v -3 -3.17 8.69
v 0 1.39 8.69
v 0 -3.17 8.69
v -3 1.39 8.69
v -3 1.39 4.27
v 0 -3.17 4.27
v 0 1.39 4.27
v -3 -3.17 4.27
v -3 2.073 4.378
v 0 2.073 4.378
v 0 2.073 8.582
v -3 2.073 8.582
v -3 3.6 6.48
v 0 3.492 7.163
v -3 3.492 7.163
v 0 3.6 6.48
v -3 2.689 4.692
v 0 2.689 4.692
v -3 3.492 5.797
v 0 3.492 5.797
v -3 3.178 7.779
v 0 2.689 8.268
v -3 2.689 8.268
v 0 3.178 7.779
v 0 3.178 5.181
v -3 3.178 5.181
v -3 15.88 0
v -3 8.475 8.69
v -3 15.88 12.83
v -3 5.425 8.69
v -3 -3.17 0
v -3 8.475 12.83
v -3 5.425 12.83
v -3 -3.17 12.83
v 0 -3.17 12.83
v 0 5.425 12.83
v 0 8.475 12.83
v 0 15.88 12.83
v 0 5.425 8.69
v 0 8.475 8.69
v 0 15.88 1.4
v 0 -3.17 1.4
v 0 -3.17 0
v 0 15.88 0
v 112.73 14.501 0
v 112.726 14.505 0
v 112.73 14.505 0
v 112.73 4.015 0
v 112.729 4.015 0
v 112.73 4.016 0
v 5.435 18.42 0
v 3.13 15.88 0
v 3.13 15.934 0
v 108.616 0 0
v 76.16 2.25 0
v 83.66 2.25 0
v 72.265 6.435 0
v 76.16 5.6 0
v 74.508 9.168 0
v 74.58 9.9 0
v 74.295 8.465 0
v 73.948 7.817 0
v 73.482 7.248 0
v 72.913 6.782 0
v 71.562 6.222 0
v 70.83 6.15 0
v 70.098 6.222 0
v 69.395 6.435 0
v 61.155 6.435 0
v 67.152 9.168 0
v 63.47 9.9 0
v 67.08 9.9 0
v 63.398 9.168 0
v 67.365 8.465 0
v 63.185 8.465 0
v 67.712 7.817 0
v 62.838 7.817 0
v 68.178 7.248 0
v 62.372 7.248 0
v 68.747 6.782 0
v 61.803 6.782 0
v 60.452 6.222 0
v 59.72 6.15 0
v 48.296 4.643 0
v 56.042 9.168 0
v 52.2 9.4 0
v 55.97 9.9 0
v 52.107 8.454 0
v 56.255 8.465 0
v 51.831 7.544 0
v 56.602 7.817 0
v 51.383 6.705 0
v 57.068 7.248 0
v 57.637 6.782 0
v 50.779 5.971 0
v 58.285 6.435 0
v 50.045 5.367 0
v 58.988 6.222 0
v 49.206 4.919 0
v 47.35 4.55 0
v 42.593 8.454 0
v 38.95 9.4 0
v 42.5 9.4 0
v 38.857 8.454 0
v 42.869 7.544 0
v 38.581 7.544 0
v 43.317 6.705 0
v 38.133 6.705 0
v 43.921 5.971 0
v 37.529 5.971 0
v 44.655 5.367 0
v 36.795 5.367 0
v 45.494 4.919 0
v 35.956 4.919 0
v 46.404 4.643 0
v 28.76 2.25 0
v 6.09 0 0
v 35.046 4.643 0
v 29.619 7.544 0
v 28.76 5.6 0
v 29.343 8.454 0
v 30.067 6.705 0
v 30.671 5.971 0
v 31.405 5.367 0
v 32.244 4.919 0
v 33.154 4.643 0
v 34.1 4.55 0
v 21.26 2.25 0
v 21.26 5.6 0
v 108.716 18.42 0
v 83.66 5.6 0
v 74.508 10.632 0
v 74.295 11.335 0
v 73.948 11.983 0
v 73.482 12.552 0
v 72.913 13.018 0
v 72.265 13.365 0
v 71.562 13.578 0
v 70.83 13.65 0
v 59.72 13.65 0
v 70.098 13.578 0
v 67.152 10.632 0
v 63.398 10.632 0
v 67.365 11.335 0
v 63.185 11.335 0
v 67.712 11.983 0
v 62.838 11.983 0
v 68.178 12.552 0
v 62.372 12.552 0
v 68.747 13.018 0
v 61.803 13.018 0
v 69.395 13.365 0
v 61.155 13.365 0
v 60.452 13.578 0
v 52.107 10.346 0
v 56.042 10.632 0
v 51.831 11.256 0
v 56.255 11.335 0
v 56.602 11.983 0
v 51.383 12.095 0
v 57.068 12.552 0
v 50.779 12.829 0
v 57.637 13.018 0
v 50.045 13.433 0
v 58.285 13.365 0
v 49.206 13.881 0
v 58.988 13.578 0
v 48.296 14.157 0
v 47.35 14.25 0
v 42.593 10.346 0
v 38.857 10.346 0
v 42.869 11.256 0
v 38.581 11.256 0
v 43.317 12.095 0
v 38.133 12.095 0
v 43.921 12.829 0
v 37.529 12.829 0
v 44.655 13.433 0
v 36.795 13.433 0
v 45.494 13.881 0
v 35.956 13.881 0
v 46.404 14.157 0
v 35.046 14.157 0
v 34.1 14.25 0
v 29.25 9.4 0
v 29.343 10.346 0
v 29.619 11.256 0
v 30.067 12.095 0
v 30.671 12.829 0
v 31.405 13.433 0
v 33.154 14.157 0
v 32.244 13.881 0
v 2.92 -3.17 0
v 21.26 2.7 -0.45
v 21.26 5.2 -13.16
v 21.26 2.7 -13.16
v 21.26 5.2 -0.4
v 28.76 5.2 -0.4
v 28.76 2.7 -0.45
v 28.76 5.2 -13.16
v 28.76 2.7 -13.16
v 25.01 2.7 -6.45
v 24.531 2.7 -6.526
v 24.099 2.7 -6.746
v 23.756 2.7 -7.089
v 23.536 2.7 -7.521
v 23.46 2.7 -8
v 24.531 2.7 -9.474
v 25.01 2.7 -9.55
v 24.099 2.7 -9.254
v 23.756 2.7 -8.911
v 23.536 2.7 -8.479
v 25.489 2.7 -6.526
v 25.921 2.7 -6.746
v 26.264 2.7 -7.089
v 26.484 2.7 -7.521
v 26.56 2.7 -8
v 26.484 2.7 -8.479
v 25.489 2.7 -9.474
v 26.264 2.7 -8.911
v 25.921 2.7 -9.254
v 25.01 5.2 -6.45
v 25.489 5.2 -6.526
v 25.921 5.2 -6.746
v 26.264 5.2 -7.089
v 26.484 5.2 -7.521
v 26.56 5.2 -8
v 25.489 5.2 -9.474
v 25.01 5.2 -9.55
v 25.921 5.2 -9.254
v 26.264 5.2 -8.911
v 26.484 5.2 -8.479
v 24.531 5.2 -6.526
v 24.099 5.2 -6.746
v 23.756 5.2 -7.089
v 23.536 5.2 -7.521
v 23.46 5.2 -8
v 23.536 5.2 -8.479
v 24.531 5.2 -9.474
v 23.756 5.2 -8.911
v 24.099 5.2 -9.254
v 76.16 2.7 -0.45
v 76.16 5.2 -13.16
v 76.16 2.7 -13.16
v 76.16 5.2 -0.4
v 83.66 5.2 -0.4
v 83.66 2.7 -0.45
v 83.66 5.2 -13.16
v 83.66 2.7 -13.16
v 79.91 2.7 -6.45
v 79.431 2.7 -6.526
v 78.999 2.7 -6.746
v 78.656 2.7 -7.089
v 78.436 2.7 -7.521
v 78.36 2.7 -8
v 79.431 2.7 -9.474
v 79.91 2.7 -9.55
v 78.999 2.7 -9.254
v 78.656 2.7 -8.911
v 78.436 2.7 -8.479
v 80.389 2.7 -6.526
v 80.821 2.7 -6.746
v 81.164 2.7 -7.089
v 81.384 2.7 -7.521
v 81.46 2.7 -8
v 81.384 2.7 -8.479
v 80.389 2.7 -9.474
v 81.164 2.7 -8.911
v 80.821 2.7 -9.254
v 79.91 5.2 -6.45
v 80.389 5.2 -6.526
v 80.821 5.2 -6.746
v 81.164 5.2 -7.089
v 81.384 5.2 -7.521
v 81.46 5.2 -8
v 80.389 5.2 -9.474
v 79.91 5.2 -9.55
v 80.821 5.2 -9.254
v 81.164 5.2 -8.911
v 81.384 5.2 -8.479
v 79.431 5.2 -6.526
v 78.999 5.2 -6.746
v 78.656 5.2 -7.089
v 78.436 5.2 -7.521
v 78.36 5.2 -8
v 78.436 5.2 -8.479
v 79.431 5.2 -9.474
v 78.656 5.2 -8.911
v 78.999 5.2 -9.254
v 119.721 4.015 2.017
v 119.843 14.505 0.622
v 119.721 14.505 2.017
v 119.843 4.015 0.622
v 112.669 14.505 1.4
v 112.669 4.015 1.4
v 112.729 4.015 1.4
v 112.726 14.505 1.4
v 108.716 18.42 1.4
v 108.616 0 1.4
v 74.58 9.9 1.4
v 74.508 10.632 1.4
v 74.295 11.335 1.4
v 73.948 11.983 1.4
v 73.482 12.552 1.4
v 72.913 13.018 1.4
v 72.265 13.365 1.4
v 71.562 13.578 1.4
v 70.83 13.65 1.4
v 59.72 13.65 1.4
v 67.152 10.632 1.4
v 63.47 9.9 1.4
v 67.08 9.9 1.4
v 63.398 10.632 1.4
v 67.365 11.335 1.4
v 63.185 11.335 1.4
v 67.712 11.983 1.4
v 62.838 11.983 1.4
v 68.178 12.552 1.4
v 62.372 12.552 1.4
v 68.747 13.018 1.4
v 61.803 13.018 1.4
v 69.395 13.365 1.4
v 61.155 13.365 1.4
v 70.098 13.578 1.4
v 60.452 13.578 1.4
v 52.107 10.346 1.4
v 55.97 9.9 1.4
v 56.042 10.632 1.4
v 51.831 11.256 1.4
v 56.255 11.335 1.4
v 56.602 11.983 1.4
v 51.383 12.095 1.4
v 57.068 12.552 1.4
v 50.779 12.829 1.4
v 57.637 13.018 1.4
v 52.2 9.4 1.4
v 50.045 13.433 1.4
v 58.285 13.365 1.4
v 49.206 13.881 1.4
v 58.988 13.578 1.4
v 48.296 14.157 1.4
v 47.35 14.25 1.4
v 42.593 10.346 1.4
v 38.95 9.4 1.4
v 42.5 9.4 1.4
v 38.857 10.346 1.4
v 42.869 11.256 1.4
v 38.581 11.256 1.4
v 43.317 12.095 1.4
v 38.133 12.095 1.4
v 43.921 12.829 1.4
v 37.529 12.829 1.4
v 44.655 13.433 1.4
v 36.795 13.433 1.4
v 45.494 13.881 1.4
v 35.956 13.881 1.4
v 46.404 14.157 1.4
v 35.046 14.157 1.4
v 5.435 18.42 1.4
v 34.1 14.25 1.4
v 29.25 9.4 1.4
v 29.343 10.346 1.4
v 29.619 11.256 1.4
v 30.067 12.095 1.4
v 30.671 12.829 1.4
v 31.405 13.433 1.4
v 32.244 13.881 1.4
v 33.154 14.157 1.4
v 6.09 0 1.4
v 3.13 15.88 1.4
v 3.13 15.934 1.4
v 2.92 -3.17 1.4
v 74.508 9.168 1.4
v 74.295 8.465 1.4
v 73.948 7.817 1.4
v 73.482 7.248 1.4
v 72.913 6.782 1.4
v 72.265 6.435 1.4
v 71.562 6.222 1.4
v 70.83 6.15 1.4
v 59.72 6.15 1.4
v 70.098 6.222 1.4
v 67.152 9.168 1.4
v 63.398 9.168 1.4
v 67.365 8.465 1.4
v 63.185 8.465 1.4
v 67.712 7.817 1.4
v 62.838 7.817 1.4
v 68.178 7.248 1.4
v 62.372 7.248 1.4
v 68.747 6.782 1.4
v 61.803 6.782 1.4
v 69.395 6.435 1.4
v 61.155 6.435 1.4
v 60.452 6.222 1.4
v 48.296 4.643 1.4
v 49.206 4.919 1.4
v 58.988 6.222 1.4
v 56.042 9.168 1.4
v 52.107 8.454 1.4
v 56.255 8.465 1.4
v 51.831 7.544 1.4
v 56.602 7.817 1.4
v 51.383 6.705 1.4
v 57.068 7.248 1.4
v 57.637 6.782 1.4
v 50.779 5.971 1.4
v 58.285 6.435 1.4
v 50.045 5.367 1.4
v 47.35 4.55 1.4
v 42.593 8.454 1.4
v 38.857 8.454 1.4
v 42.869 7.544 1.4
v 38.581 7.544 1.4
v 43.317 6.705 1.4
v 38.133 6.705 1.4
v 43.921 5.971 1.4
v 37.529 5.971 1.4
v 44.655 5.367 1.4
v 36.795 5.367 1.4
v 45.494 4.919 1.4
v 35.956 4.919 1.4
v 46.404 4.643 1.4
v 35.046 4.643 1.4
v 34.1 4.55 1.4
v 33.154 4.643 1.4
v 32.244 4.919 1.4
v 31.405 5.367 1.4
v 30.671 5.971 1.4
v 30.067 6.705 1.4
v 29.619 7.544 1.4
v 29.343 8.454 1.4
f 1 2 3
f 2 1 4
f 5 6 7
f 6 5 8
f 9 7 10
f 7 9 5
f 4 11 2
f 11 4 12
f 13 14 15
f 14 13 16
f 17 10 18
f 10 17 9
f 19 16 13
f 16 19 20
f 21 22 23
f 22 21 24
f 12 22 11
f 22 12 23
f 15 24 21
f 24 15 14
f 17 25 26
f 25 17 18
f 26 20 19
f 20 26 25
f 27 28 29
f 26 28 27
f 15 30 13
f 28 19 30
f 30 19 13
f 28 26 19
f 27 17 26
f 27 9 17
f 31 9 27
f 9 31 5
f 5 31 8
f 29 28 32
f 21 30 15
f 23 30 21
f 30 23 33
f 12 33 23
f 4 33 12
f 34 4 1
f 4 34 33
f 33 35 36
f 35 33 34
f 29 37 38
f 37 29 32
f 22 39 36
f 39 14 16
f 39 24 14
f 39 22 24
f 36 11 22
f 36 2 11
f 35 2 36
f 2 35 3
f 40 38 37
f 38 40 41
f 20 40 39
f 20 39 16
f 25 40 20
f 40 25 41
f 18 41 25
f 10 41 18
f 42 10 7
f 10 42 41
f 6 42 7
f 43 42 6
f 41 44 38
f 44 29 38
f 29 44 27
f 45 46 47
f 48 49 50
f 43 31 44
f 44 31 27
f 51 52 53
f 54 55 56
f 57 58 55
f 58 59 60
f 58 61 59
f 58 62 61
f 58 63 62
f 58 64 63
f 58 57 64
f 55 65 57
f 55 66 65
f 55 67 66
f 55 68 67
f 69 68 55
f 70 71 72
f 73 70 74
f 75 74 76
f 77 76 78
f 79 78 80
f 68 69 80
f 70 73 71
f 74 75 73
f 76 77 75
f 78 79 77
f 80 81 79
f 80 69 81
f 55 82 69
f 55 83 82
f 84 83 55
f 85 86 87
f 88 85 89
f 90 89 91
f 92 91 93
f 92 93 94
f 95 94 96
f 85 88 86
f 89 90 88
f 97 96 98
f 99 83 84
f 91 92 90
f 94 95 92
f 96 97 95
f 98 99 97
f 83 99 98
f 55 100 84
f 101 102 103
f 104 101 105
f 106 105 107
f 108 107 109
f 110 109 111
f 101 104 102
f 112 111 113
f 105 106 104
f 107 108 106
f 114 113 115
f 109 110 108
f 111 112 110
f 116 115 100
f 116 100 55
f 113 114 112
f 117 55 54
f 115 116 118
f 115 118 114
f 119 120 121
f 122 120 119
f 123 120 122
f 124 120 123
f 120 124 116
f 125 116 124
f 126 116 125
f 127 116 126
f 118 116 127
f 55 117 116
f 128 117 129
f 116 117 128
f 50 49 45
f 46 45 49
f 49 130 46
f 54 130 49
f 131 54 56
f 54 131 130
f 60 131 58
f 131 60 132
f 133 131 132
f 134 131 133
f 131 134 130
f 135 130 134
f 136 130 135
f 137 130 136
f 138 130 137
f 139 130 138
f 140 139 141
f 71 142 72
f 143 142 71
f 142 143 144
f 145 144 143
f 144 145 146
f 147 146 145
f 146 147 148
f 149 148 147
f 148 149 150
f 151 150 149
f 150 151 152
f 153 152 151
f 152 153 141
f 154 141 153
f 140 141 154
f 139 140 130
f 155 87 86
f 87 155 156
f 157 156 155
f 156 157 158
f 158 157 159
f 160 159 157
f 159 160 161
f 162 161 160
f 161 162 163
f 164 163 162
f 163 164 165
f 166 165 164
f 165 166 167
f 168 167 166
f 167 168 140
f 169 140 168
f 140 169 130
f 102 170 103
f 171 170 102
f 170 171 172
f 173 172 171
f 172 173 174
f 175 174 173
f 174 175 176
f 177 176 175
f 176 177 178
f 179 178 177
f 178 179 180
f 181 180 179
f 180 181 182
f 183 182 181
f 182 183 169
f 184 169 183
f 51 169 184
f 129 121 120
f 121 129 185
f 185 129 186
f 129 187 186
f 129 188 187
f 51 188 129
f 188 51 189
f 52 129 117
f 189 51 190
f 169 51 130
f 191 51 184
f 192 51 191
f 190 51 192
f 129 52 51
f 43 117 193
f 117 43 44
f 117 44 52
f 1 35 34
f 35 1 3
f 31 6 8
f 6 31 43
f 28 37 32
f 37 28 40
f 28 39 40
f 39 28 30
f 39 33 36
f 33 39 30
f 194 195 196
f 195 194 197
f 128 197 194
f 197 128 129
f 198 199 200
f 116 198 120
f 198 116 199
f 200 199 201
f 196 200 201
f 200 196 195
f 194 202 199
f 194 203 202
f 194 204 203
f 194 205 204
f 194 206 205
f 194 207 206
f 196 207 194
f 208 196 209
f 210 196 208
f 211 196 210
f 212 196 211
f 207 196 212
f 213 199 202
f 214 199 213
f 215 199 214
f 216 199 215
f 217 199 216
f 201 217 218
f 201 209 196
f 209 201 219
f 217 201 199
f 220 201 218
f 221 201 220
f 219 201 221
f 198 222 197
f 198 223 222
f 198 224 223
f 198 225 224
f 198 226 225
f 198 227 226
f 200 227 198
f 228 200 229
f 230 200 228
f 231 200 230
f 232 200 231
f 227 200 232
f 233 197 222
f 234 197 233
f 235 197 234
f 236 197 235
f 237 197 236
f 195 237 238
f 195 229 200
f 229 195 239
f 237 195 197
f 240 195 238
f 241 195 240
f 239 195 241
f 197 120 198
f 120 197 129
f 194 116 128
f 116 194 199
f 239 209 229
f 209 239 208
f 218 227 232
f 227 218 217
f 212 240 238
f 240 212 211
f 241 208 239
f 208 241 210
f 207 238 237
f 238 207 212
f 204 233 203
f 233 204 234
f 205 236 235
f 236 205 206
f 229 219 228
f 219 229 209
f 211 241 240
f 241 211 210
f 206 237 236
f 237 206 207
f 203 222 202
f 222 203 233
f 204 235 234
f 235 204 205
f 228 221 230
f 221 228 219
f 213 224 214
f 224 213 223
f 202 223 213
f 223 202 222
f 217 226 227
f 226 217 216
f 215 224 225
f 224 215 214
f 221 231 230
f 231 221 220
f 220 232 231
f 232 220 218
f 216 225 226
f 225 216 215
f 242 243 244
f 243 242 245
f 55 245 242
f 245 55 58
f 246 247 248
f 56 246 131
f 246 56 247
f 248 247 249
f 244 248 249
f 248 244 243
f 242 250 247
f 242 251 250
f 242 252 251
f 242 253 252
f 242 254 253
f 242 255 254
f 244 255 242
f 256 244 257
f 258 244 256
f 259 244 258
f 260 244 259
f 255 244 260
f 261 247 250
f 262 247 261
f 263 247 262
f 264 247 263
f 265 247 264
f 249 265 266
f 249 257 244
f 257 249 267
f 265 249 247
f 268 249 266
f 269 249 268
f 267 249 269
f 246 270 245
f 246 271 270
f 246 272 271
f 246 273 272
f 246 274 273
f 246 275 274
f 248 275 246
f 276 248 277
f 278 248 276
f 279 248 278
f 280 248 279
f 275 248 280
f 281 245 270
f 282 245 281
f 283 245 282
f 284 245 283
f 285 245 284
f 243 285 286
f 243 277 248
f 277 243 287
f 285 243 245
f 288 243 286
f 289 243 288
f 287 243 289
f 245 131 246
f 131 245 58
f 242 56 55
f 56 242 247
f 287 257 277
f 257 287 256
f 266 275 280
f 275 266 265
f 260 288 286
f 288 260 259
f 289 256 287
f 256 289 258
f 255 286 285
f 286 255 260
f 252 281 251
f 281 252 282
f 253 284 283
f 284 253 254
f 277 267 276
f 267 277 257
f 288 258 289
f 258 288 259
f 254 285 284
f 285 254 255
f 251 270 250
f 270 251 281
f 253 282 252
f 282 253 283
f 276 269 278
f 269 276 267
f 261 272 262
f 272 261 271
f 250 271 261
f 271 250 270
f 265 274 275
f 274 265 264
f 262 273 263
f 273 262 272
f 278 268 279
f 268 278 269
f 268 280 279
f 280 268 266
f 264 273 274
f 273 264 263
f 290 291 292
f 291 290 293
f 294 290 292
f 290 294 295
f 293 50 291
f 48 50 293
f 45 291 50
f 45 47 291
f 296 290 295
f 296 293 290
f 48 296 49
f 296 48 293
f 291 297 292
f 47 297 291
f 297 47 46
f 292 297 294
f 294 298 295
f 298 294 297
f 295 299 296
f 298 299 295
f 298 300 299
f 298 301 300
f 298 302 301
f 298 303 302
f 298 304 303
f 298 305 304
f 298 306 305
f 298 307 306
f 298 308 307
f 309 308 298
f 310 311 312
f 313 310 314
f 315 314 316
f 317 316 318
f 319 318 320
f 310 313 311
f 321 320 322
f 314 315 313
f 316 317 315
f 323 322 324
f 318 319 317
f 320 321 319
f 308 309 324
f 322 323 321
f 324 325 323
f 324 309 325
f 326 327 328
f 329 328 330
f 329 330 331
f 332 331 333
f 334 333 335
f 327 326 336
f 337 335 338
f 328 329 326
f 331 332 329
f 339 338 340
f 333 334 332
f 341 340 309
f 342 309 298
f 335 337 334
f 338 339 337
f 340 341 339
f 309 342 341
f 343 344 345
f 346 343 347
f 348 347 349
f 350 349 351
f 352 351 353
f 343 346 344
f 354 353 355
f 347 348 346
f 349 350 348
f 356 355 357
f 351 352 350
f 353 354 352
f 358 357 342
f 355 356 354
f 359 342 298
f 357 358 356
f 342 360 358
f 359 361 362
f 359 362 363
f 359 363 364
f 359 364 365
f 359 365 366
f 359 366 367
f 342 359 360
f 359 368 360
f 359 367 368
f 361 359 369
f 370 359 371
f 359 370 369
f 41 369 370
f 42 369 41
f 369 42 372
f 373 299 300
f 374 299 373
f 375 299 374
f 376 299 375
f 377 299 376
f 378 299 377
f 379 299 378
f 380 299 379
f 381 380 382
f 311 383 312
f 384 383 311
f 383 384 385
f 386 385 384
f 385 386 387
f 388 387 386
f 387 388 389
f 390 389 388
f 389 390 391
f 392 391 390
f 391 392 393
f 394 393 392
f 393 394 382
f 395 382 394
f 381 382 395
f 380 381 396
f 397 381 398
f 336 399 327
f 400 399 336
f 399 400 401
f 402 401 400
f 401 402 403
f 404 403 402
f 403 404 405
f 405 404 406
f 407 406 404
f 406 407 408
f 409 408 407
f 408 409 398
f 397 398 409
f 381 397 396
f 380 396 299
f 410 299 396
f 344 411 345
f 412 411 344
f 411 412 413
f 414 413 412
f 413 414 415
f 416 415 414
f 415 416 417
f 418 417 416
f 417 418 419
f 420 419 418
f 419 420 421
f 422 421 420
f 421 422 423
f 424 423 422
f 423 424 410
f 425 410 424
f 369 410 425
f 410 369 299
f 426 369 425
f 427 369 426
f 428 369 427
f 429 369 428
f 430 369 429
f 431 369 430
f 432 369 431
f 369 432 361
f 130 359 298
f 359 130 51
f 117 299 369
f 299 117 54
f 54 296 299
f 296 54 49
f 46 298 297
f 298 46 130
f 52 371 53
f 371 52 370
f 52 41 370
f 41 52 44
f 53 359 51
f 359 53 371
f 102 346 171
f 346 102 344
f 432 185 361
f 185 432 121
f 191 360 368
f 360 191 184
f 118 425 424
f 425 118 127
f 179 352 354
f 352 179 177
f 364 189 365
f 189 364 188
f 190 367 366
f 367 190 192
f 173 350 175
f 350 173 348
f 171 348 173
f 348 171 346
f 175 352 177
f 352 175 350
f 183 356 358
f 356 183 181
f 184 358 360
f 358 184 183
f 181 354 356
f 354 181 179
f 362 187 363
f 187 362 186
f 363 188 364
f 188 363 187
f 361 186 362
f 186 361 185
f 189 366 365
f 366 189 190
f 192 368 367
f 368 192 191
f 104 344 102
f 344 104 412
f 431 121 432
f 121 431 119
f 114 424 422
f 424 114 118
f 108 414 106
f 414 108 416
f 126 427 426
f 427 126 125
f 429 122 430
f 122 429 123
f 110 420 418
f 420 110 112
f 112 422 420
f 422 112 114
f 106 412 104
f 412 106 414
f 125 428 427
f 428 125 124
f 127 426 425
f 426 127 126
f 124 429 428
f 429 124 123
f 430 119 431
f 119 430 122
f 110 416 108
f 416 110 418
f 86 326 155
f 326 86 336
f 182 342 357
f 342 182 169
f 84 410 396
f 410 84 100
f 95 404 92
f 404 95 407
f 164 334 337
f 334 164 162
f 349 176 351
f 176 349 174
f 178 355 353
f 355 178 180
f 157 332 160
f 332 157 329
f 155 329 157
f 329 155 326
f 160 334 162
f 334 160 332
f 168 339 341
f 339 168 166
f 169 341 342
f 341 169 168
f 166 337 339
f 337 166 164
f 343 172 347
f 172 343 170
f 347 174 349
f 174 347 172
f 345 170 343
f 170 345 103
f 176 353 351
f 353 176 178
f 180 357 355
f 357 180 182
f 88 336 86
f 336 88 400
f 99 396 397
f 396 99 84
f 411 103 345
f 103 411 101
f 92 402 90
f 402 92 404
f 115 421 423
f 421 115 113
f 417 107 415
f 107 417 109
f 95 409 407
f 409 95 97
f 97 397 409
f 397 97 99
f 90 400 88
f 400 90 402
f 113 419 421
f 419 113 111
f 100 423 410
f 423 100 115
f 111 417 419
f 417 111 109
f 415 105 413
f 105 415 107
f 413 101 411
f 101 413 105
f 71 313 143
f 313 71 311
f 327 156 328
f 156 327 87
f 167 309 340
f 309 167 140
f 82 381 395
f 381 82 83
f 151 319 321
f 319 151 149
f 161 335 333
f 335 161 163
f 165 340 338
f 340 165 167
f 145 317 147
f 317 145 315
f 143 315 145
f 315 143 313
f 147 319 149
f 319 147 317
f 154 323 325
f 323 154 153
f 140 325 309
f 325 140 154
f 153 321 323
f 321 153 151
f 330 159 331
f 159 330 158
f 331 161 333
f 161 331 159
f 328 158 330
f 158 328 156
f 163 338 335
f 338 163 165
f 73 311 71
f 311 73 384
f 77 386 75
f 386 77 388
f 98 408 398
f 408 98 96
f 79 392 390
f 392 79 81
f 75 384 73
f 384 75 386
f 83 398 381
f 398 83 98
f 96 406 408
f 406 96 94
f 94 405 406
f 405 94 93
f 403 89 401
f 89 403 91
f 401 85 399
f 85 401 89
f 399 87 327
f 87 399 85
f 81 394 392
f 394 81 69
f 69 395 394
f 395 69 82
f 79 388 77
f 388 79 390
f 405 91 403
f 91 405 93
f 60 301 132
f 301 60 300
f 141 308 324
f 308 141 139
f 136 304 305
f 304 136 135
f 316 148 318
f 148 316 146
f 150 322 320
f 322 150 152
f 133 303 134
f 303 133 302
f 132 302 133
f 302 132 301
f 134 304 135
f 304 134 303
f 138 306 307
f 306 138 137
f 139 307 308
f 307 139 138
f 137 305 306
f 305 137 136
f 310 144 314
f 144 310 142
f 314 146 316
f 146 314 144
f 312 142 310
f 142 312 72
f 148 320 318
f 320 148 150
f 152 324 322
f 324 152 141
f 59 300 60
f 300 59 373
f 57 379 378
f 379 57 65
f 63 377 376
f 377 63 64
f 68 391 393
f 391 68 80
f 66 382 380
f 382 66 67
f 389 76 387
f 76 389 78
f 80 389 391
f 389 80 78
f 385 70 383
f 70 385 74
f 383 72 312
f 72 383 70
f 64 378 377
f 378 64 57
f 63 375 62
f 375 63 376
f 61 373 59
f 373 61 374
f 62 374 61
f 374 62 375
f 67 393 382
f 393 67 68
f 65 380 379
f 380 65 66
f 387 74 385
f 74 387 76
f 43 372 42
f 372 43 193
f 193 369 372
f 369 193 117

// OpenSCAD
resolution=32; // $fn
low_profile=0; // [0:false, 1:true]
bracket_thickness = 1.4; // base bracket depth

//Some 3d printers may have trouble with this, disable it if yours does.
angled_bottom_tab = 1; // [0:false, 1:true]
decorative_hole=0; // [0:false, 1:true]
// This puts the tabs at the top rather than the bottom, and hole y-offsets are adjusted accordingly
isa_slot=0; // [0:false, 1:true]
// This is used to calculate the y-offsets of the holes if the screw mount tabs are on the bottom
pcb_thickness=1.6;

top_tab_thickness = 3;

/* [Screw mount tabs] */

first_screw_tab_enabled = 1; // [0:false, 1:true]
second_screw_tab_enabled = 1; // [0:false, 1:true]
screw_mounts_on_bottom_of_pcb = 0; // [0:false, 1:true]
screw_mount_width = 7.5;
screw_mount_depth = 2.5;
screw_mount_hole_r = 1.55; // m3 bolt
screw_mount_thread_distance_base = 8;
screw_mount_inset_r = 2.9; // m3 bolt head
screw_mount_inset_depth = 0;
screw_mount_caulking = 0.5;

first_mount_x = 25.01;
mount_hole_distance = 54.9;
// If on top of the PCB, it is recommended to have this be at least the thickness of the PCB
screw_mount_y = 2.7;
second_mount_x = first_mount_x + mount_hole_distance;

/* [Round Holes] */
hole_1_enabled = 1; // [0:false, 1:true]
// X is offset from the first screw hole (i.e. the screw hole closest to the case mount cutout)
hole_1_x = 9.09;
// Y is offset from top of pcb
hole_1_y = 6.7;
hole_1_d = 9.7;

hole_2_enabled = 1; // [0:false, 1:true]
hole_2_x = 22.34;
hole_2_y = 6.7;
hole_2_d = 9.7;

hole_3_enabled = 1; // [0:false, 1:true]
hole_3_x = 34.71;
hole_3_y = 7.2;
hole_3_d = 7.5;

hole_4_enabled = 1; // [0:false, 1:true]
hole_4_x = 45.82;
hole_4_y = 7.2;
hole_4_d = 7.5;

hole_5_enabled = 0; // [0:false, 1:true]
hole_5_x = 37.69;
hole_5_y = 6.7;
hole_5_d = 9.5;

hole_6_enabled = 0; // [0:false, 1:true]
hole_6_x = 51.04;
hole_6_y = 6.7;
hole_6_d = 9.5;

/* [Rectangular Holes] */
// hole is at center of x,y positions
rectangular_hole_1_enabled = 0; // [0:false, 1:true]
// X is offset from the first screw hole (i.e. the screw hole closest to the case mount cutout)
rectangular_hole_1_x = 11.01;
// Y is offset from top of pcb
rectangular_hole_1_y = 6.5;
rectangular_hole_1_w = 10.5;
rectangular_hole_1_h = 10.5;

rectangular_hole_2_enabled = 0; // [0:false, 1:true]
rectangular_hole_2_x = 24.34;
rectangular_hole_2_y = 6.5;
rectangular_hole_2_w = 10.5;
rectangular_hole_2_h = 10.5;

rectangular_hole_3_enabled = 0; // [0:false, 1:true]
rectangular_hole_3_x = 63.41;
rectangular_hole_3_y = 7;
rectangular_hole_3_w = 10.5;
rectangular_hole_3_h = 10.5;

rectangular_hole_4_enabled = 0; // [0:false, 1:true]
rectangular_hole_4_x = 76.12;
rectangular_hole_4_y = 7;
rectangular_hole_4_w = 10.5;
rectangular_hole_4_h = 10.5;

rectangular_hole_5_enabled = 0; // [0:false, 1:true]
rectangular_hole_5_x = 37.69;
rectangular_hole_5_y = 6.5;
rectangular_hole_5_w = 10.5;
rectangular_hole_5_h = 10.5;

rectangular_hole_6_enabled = 0; // [0:false, 1:true]
rectangular_hole_6_x = 51.04;
rectangular_hole_6_y = 6.5;
rectangular_hole_6_w = 10.5;
rectangular_hole_6_h = 10.5;
// values taken from https://content.norcomp.net/rohspdfs/Connectors/PanelCutOuts/Panel_Cutout_D-Sub-Single.pdf

/* [D-Sub holes (Serial/VGA/Gameport)] */
// hole is at center of x,y positions
dsub_hole_1_type = 0; // [0:None, 15.46:DB-9(VGA/Serial), 23.79:DB-15(Gameport), 37.51:DB-25(Parallel)]
// X is offset from the first screw hole (i.e. the screw hole closest to the case mount cutout)
dsub_hole_1_x = 37.6;
// Y is offset from top of pcb
dsub_hole_1_y = 7.1;
dsub_hole_1_invert = 0; // [0:false, 1:true]

dsub_hole_2_type = 0; // [0:None, 15.46:DB-9(VGA/Serial), 23.79:DB-15(Gameport), 37.51:DB-25(Parallel)]
dsub_hole_2_x = 37.6;
dsub_hole_2_y = 7.1;
dsub_hole_2_invert = 0; // [0:false, 1:true]

dsub_hole_3_type = 0; // [0:None, 15.46:DB-9(VGA/Serial), 23.79:DB-15(Gameport), 37.51:DB-25(Parallel)]
dsub_hole_3_x = 37.6;
dsub_hole_3_y = 7.1;
dsub_hole_3_invert = 0; // [0:false, 1:true]

/* [DVI Hole]] */

dvi_hole_enabled = 0; // [0:false, 1:true]
dvi_hole_x = 37.6;
dvi_hole_y = 6;
dvi_hole_invert = 0; // [0:false, 1:true]


module __Customizer_Limit__ () {}  // This actually works
shown_by_customizer = 0; // [0:false, 1:true]

$fn = resolution;
bracket_width_length = low_profile? 71.46 : 112.78;
bracket_length = low_profile ? 79.20 : 120.02;
bracket_width = 18.42 + 0;
bottom_tab_width = 10.19 + 0;
bracket_bottom_tab_angle_length = (bracket_width - bottom_tab_width) / 2;

bracket_reinforce_width = bracket_width * .2;
bracket_reinforce_length = bracket_length * .78;

bracket_hole_dia = decorative_hole ? 4.75 : 0;
bracket_hole_distance = low_profile ? 66.19 : 107.01;

screw_mount_thread_distance = screw_mount_thread_distance_base + bracket_thickness;
screw_mount_length = screw_mount_thread_distance * 1.4 + bracket_thickness;

bracket_reinforce_depth = 0;
bracket_reinforce_offset_x = -6;
bracket_reinforce_offset_y = -5;

// top notch
notch_width = 2.54;
notch_length = 3.94-.86; // 3.94 - specified thickness of .86mm (vs actual thickness)

top_tab_width = 19.05; // had to fudge this
top_tab_length = 11.43;
top_tab_x = 0;
top_tab_y = 3.17; // 21.59 - 18.42
top_tab_screw_groove_dia = 4.42;
top_tab_screw_groove_fudge = -0.4; // kinda came out looking wrong so I'm faking it a bit here
top_tab_screw_groove_center = 3.18 + top_tab_screw_groove_fudge;
top_tab_screw_groove_distance = 6.35;
top_tab_screw_groove_translate_z = top_tab_length - top_tab_screw_groove_dia / 2 - top_tab_screw_groove_distance;

top_tab_useless_notch_length = 3.05;
top_tab_useless_notch_width = top_tab_screw_groove_distance - top_tab_screw_groove_dia / 2;
top_tab_useless_notch_z = top_tab_length - top_tab_useless_notch_width;
top_tab_useless_notch_y = top_tab_useless_notch_width / 2 + 8.05 - top_tab_useless_notch_length / 2;


module prism(l, w, h){
     polyhedron(
         points=[[0,0,0], [l,0,0], [l,w,0], [0,w,0], [0,w,h], [l,w,h]],
         faces=[[0,1,2,3],[5,4,3,2],[0,4,5,1],[0,3,4],[5,2,1]]
         );
}
// screw mounts
module screwmount(x) {
  
  translate([0, isa_slot? -screw_mount_y - screw_mount_depth : -bracket_width + screw_mount_y, 0]) // easier to be explicit here than factor it in the below statement
  translate([x - screw_mount_width / 2, bracket_width, -screw_mount_length + bracket_thickness])
    // cut out the threads
    difference() {
      union() {
        cube([screw_mount_width, screw_mount_depth, screw_mount_length]);
        //top caulking
        if ((isa_slot && bracket_width-screw_mount_y +screw_mount_caulking < bracket_width) || (!isa_slot &&  screw_mount_y + screw_mount_depth+ screw_mount_caulking < bracket_width)){
        difference(){
        translate([screw_mount_width, screw_mount_depth-.05, screw_mount_length-bracket_thickness-screw_mount_caulking +.05])
          rotate([90,0,180])
          prism(screw_mount_width,screw_mount_caulking+.05,screw_mount_caulking+.05);
        }
        }
        //bottom caulking
        if ((isa_slot && bracket_width-screw_mount_y -screw_mount_depth -screw_mount_caulking > 0) || (!isa_slot && screw_mount_y - screw_mount_caulking > 0)){
        translate([0, 0, screw_mount_length-bracket_thickness-screw_mount_caulking +.05])
          rotate([90,0,0])
          prism(screw_mount_width,screw_mount_caulking+.05,screw_mount_caulking+.05);
        }        
      }
       translate([screw_mount_width / 2, -2, screw_mount_length - screw_mount_thread_distance])
         rotate([0, 90, 90]) cylinder(r=screw_mount_hole_r, h=10, $fn=20);
      //inset
      translate([screw_mount_width / 2, ((isa_slot && screw_mounts_on_bottom_of_pcb) || (!isa_slot && !screw_mounts_on_bottom_of_pcb))?(screw_mount_depth - screw_mount_inset_depth + 0.01):(-0.01),
        screw_mount_length - screw_mount_thread_distance])
          rotate([0, 90, 90])
          cylinder(r=screw_mount_inset_r, h=screw_mount_inset_depth, $fn=20);
    }
}

module translate_hole(hole_x,hole_y){
  y_offset_b = screw_mounts_on_bottom_of_pcb ? pcb_thickness + screw_mount_depth : 0;
  y_offset = !isa_slot ? 
    hole_y + screw_mount_y + y_offset_b
    : bracket_width - (hole_y + screw_mount_y + y_offset_b);
  translate([first_mount_x+ hole_x, y_offset, -bracket_thickness])
    children();
}
module round_hole(hole_x,hole_y,hole_d){
  translate_hole(hole_x,hole_y)
    cylinder(10,hole_d/2,hole_d/2);
}
module rectangular_hole(hole_x,hole_y,hole_w,hole_h){
  translate_hole(hole_x,hole_y)
    cube([10, hole_w, hole_h], center=true);
}

module dsub_hole(hole_x,hole_y,c_sz, invert = false){
  translate_hole(hole_x,hole_y)
    dsub_cutout(c_sz, invert);
}
module dsub_cutout(c_sz, invert=false){
  $fn=64;
  rotate([0,0,90]){
    top_x_coord = !invert ? c_sz/2 : (c_sz-2)/2;
    bottom_x_coord = !invert ? (c_sz-2)/2 : c_sz/2;
    hole_coord = (c_sz+9.53)/2;
    y_distance = 5.66;
    y_coord = y_distance/2;
    translate([0,hole_coord,0])
        cylinder(r=1.55,h=10);
    translate([0,-hole_coord,0])
        cylinder(r=1.55,h=10);
    hull(){
      translate([y_coord,-top_x_coord,0]){
      cylinder(r=2.51,h=10);
      }
      translate([y_coord,top_x_coord,0]){
      cylinder(r=2.51,h=10);
      }
      translate([-y_coord,-bottom_x_coord,0]){
      cylinder(r=2.51,h=10);
      }
      translate([-y_coord,bottom_x_coord,0]){
      cylinder(r=2.51,h=10);
      }
    }
  }
}
module dvi_hole(hole_x,hole_y, invert = false){
  translate_hole(hole_x,hole_y)
    dvi_cutout(invert);
}
module dvi_cutout(invert=false){
  $fn=64;
  rotate([0,0,90]){
    a_sz = 26.1;
    top_r_sz = 1.2;
    bottom_r_sz = 3;
    c_sz = a_sz - (top_r_sz *2);
    e_sz = c_sz - ((bottom_r_sz - top_r_sz) * 2);
    hole_coord = 32.5 /2;
    y_distance = 9.6 - (top_r_sz+ bottom_r_sz);

    top_x_coord = !invert ? c_sz/2 : e_sz/2;
    bottom_x_coord = !invert ? e_sz/2 : c_sz/2;
    top_r = !invert ? top_r_sz : bottom_r_sz;
    bottom_r = !invert ? bottom_r_sz: top_r_sz ;
    
    y_coord = y_distance/2;

    translate([0,hole_coord,0])
        cylinder(r=1.6,h=10);
    translate([0,-hole_coord,0])
        cylinder(r=1.6,h=10);
    hull(){
      translate([y_coord,-top_x_coord,0]){
      cylinder(r=top_r,h=10);
      }
      translate([y_coord,top_x_coord,0]){
      cylinder(r=top_r,h=10);
      }
      translate([-y_coord,-bottom_x_coord,0]){
      cylinder(r=bottom_r,h=10);
      }
      translate([-y_coord,bottom_x_coord,0]){
      cylinder(r=bottom_r,h=10);
      }
    }
  }
}

rotate([0,0,0])
union() { 
    
translate([-top_tab_thickness + top_tab_x, -top_tab_y, 0]) difference() {
  cube([top_tab_thickness, top_tab_width, top_tab_length + bracket_thickness]);
  translate([-.5, -1, top_tab_screw_groove_translate_z + bracket_thickness]) {
    cube([top_tab_thickness + 1, top_tab_screw_groove_center * 2, top_tab_screw_groove_dia]);
    translate([1, top_tab_screw_groove_center * 2, top_tab_screw_groove_dia / 2])
      rotate([0, 90, 0])
      cylinder(r=top_tab_screw_groove_dia / 2, h=top_tab_thickness * 2, $fn=20, center=true);
  }
  translate([-.5, top_tab_useless_notch_y, top_tab_useless_notch_z + bracket_thickness]) {
    cube([top_tab_thickness + 1, top_tab_useless_notch_length, top_tab_useless_notch_width + 1]);
  }
}
if (first_screw_tab_enabled){
  screwmount(first_mount_x);  
}
if (second_screw_tab_enabled) {
  screwmount(second_mount_x);
}

// bottom notch
shiftover_width = top_tab_y;
shiftover_length = 2.92;



// build up the shiftover
translate([0, -shiftover_width, 0]) cube([shiftover_length, shiftover_width + .1, bracket_thickness]);
translate([
  shiftover_length,
  -shiftover_width,
  bracket_thickness])
  rotate([0, 90, 0])  
  prism(bracket_thickness, shiftover_width, shiftover_width);

// Main bracket part
difference() {
  // the base bracket
  cube([bracket_length, bracket_width, bracket_thickness]);

  // carve out the angles
  translate([
    bracket_width_length,
    bracket_bottom_tab_angle_length - .05,
    2])
    rotate([0, 90, 0])
    rotate([180, 0, 0])  
    prism(bracket_bottom_tab_angle_length, bracket_bottom_tab_angle_length, bracket_bottom_tab_angle_length + 0.1);
  // other side
  translate([
    bracket_width_length + 0.1,
    bracket_bottom_tab_angle_length + bottom_tab_width + .05,
    -2])
    rotate([0, 90, 0])
    rotate([180, 0, 180])  
    prism(bracket_bottom_tab_angle_length, bracket_bottom_tab_angle_length, bracket_bottom_tab_angle_length + 0.1);  
  
  // ornamental hole
  if (decorative_hole){
      translate([bracket_hole_distance, bracket_width / 2, -1.5])
        cylinder(r=bracket_hole_dia / 2, h=3, $fn=20);
  }
  // notch out the shiftover
  translate([-0.95, bracket_width - notch_width, -1])
    cube([notch_length + 1, notch_width + .1, bracket_thickness + 2]);
  translate([
    notch_length,
    bracket_width - notch_width,
    2])
    rotate([0, 90, 0])  
    prism(notch_width, notch_width + .2, notch_width);
  // shape the tab at the bottom
  if (angled_bottom_tab){
    translate([bracket_width_length - 0.05, -.05, -.5])
      cube([bracket_length - bracket_width_length + 0.1, bottom_tab_width+ bracket_bottom_tab_angle_length * 2 + .1, bracket_thickness + 1.05]);
  } else {
    translate([bracket_width_length - 0.05, -.05, -.5])
      cube([bracket_length - bracket_width_length + 0.1, bracket_bottom_tab_angle_length + .1, bracket_thickness + 1.05]);
    translate([bracket_width_length - 0.05, bracket_bottom_tab_angle_length + bottom_tab_width,-.5])
      cube([bracket_length - bracket_width_length + 0.1, bracket_bottom_tab_angle_length + 0.1, bracket_thickness + 1]);

  }
  
  y_offset_b = screw_mounts_on_bottom_of_pcb ? pcb_thickness + screw_mount_depth : 0;
  // holes

  //round holes
  if (hole_1_enabled){
    round_hole(hole_1_x,hole_1_y,hole_1_d);
  }
  if (hole_2_enabled){
    round_hole(hole_2_x,hole_2_y,hole_2_d);
  }
  if (hole_3_enabled){
    round_hole(hole_3_x,hole_3_y,hole_3_d);
  }
  if (hole_4_enabled){
    round_hole(hole_4_x,hole_4_y,hole_4_d);
  }
  if (hole_5_enabled){
    round_hole(hole_5_x,hole_5_y,hole_5_d);
  }
  if (hole_6_enabled){
    round_hole(hole_6_x,hole_6_y,hole_6_d);
  }
  //rectangular holes
  if (rectangular_hole_1_enabled){
    rectangular_hole(rectangular_hole_1_x,rectangular_hole_1_y,rectangular_hole_1_w, rectangular_hole_1_h);
  }
  if (rectangular_hole_2_enabled){
    rectangular_hole(rectangular_hole_2_x,rectangular_hole_2_y,rectangular_hole_2_w, rectangular_hole_2_h);
  }
  if (rectangular_hole_3_enabled){
    rectangular_hole(rectangular_hole_3_x,rectangular_hole_3_y,rectangular_hole_3_w, rectangular_hole_3_h);
  }
  if (rectangular_hole_4_enabled){
    rectangular_hole(rectangular_hole_4_x,rectangular_hole_4_y,rectangular_hole_4_w, rectangular_hole_4_h);
  }
  if (rectangular_hole_5_enabled){
    rectangular_hole(rectangular_hole_5_x,rectangular_hole_5_y,rectangular_hole_5_w, rectangular_hole_5_h);
  }
  if (rectangular_hole_6_enabled){
    rectangular_hole(rectangular_hole_6_x,rectangular_hole_6_y,rectangular_hole_6_w, rectangular_hole_6_h);
  }
  if (dsub_hole_1_type > 0){
    dsub_hole(dsub_hole_1_x, dsub_hole_1_y, dsub_hole_1_type, dsub_hole_1_invert);
  }
  if (dsub_hole_2_type > 0){
    dsub_hole(dsub_hole_2_x, dsub_hole_2_y, dsub_hole_2_type, dsub_hole_2_invert);
  }
  if (dsub_hole_3_type > 0){
    dsub_hole(dsub_hole_3_x, dsub_hole_3_y, dsub_hole_3_type, dsub_hole_3_invert);
  }
  if (dvi_hole_enabled){
    dvi_hole(dvi_hole_x, dvi_hole_y, dvi_hole_invert);
  }
}

if (angled_bottom_tab){
  difference(){
    translate([bracket_width_length-0.05, bracket_bottom_tab_angle_length-0.1,0])
    rotate([0,-5,0])
    translate([-0.2,0,0])
    cube([bracket_length - bracket_width_length + 0.1, bottom_tab_width+.3, bracket_thickness ]);
    
    translate([bracket_width_length-0.3, bracket_bottom_tab_angle_length-0.2,-bracket_thickness])
    cube([bracket_length - bracket_width_length, bottom_tab_width+.4,1.4]);
  }
}
}
// reinforce bracket body

//translate([
//  bracket_length / 2 - bracket_reinforce_length / 2 + bracket_reinforce_offset_x,
//  (isa_slot? (bracket_width  - bracket_width / 2 - bracket_reinforce_width / 2 + bracket_reinforce_offset_y) : bracket_width+bracket_reinforce_offset_y),
//  -bracket_reinforce_depth])
//  cube([bracket_reinforce_length, bracket_reinforce_width, bracket_reinforce_depth]);
////if (cf_slot_enabled) {
////  translate([
////    bracket_length / 2 - bracket_reinforce_length / 2 + bracket_reinforce_offset_x,
////    bracket_width - bracket_reinforce_width,
////    -cf_reinforce_screwmount_depth])
////    cube([bracket_reinforce_length, bracket_reinforce_width, cf_reinforce_screwmount_depth]);
////}
//
